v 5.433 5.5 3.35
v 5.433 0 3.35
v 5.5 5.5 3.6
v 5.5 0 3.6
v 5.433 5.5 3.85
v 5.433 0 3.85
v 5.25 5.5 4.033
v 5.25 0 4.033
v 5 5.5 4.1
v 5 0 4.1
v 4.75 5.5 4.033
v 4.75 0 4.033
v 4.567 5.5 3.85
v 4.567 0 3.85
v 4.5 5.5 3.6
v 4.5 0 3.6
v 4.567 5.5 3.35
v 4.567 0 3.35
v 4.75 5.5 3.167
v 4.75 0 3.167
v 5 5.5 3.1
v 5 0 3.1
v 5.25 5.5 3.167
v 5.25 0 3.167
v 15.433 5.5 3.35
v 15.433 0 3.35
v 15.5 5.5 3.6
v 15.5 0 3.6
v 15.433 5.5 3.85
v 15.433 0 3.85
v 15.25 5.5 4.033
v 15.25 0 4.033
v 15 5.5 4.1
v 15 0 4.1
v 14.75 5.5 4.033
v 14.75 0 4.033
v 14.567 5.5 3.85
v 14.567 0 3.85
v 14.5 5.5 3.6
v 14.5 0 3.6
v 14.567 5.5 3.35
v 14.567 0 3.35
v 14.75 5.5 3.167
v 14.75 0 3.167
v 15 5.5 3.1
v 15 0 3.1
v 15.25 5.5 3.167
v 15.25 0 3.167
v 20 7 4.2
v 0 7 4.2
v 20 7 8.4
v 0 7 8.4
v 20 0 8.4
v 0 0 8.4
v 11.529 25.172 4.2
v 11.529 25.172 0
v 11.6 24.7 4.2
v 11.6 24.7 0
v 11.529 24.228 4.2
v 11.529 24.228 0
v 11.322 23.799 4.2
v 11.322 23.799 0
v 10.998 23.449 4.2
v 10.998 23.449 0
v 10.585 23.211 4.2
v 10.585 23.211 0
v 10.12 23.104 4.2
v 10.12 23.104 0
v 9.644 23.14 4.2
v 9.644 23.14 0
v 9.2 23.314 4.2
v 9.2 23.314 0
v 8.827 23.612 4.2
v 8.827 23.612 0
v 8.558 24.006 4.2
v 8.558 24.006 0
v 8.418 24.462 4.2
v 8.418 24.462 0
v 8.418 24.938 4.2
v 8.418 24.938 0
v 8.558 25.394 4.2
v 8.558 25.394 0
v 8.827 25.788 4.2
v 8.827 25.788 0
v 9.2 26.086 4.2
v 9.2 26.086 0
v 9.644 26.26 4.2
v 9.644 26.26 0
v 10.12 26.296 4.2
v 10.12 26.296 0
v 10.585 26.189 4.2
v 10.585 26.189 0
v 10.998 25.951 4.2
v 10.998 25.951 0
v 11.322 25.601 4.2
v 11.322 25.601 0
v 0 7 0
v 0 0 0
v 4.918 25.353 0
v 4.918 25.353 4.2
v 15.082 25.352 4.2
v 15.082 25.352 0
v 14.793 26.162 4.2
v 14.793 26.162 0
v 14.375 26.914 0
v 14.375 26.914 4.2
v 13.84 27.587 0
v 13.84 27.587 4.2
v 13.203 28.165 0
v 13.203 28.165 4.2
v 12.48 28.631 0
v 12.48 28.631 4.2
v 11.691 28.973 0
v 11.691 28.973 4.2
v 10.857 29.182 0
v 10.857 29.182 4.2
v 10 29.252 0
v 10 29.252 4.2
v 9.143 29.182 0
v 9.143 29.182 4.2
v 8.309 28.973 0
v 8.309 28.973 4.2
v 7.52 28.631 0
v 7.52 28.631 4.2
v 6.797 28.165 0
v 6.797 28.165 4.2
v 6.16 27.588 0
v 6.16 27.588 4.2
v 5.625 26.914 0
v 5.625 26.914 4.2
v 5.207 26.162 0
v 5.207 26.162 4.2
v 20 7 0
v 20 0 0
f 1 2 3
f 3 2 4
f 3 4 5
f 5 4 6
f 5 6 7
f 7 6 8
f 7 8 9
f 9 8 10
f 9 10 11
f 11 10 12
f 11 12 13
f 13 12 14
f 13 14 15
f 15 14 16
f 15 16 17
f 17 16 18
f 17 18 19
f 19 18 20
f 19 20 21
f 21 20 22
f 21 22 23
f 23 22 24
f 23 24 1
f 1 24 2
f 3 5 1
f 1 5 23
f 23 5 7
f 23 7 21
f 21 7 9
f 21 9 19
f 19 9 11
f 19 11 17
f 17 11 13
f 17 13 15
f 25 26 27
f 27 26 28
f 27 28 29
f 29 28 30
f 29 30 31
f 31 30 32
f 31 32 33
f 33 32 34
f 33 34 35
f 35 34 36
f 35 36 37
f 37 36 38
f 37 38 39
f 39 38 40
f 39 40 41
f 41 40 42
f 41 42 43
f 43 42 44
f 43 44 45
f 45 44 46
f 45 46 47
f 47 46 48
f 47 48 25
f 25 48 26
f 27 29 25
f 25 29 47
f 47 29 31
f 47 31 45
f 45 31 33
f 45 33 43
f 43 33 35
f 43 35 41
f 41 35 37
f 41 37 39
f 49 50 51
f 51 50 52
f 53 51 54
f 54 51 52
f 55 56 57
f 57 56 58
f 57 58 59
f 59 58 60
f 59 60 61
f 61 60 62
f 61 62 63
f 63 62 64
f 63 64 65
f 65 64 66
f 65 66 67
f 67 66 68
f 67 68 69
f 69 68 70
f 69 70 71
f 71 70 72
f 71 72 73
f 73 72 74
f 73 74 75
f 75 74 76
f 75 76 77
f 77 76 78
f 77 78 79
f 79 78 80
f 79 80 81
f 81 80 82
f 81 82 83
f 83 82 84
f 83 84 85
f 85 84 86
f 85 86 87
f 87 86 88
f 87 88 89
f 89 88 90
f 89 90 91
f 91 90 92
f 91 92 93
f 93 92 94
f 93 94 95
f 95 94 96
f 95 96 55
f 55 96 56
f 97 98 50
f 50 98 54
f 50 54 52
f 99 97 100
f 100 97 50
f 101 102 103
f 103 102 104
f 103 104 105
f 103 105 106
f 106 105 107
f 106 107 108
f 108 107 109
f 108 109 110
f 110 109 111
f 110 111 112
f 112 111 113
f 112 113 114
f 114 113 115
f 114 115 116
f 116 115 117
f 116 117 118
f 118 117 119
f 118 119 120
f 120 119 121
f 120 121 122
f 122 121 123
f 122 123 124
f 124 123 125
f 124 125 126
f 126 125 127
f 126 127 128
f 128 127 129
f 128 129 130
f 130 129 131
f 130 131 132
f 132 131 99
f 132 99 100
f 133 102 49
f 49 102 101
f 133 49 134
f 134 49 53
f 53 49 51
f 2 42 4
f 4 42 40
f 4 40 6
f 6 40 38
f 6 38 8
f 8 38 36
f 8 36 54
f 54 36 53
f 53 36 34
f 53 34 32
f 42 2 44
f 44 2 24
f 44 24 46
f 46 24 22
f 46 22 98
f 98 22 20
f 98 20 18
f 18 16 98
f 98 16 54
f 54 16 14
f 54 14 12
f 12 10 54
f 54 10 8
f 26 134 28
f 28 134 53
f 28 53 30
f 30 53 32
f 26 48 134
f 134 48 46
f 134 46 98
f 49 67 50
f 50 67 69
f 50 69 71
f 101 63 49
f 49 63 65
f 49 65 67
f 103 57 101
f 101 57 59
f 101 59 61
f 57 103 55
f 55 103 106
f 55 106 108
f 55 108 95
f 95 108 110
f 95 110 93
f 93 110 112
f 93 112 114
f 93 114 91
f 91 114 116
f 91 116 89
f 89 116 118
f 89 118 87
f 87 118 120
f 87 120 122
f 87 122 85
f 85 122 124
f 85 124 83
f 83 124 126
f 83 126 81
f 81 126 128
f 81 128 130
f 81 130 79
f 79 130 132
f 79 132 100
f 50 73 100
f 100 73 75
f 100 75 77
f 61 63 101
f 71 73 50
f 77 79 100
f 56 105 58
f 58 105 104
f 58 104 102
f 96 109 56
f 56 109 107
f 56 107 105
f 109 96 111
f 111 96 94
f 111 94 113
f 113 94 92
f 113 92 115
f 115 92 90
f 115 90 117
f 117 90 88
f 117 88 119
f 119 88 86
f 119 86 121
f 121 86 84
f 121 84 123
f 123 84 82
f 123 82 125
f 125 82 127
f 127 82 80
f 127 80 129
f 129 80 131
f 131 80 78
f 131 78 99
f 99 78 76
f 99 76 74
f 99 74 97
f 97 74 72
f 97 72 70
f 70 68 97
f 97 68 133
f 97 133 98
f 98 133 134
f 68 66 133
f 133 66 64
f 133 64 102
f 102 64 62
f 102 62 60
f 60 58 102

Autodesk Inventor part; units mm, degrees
ref_plane "YZ Plane" through (0, 0, 0) normal (1, 0, 0) x (0, 1, 0)
ref_plane "XZ Plane" through (0, 0, 0) normal (0, 1, 0) x (-1, 0, 0)
ref_plane "XY Plane" through (0, 0, 0) normal (0, 0, 1) x (1, 0, 0)
sketch "Sketch1" plane through (0, 0, 0) normal (0, 0, 1) x (1, 0, 0)
  circle A0 centre (10, 24.7) radius 1.6
  line L0 (0, 0) -> (20.0001, 0)
  line L1 (0, 0) -> (0, 7)
  line L2 (20.0001, 0) -> (20.0001, 6.9998)
  line L3 (0, 7) -> (4.9176, 25.3526)
  line L4 (0, 7) -> (19, 7) construction
  line L5 (20.0001, 6.9998) -> (15.0825, 25.3524)
  line L6 (20.0001, 6.9998) -> (39.0001, 6.9998) construction
  arc A1 (15.0825, 25.3524) -> (4.9176, 25.3526) centre (10, 23.9906) ccw
  dimension "d17" = 7
  dimension "d18" = 6.9998
  dimension "d19" = 24.7
  dimension "d23" = 90
  dimension "d24" = 90
  dimension "d25" = 10
  dimension "d26" = 19
  dimension "d27" = 75
  dimension "d28" = 19
  dimension "d29" = 105
  dimension "d30" = 10
sketch "Sketch3" plane through (0, 0, 0) normal (0, 0, 1) x (1, 0, 0)
  point P0 (0, 0)
extrude "Extrusion1" add sketch "Sketch1" along normal blind 4.2
sketch "Sketch4" plane through (0, 0, 4.2) normal (0, 0, 1) x (1, 0, 0)
  line L0 (0, 7) -> (0, 0) projected
  line L1 (20.0001, 0) -> (20.0001, 6.9998) projected
  line L2 (0, 0) -> (20.0001, 0)
  line L3 (20.0001, 0) -> (20.0001, 6.9998)
  line L4 (3.884, 22.9404) -> (-0.0481, 7.0119) projected
  line L5 (20.0001, 6.9998) -> (0, 6.9998)
  line L6 (0, 7) -> (0, 0)
extrude "Extrusion2" add sketch "Sketch4" along normal blind 4.2
sketch "Sketch5" plane through (0, 0, 0) normal (0, -1, 0) x (1, 0, 0)
  circle A0 centre (5, 3.6) radius 0.5
  circle A1 centre (15, 3.6) radius 0.5
  line L0 (0, 0) -> (20.0001, 0) projected
  line L1 (0, 8.4) -> (20.0001, 8.4) projected
  dimension "d13" = 1
  dimension "d14" = 1
  dimension "d33" = 4.8
  dimension "d34" = 4.8
extrude "Extrusion3" cut sketch "Sketch5" against normal blind 5.5
properties part number "upper_deck_shaft_mount_printing"
